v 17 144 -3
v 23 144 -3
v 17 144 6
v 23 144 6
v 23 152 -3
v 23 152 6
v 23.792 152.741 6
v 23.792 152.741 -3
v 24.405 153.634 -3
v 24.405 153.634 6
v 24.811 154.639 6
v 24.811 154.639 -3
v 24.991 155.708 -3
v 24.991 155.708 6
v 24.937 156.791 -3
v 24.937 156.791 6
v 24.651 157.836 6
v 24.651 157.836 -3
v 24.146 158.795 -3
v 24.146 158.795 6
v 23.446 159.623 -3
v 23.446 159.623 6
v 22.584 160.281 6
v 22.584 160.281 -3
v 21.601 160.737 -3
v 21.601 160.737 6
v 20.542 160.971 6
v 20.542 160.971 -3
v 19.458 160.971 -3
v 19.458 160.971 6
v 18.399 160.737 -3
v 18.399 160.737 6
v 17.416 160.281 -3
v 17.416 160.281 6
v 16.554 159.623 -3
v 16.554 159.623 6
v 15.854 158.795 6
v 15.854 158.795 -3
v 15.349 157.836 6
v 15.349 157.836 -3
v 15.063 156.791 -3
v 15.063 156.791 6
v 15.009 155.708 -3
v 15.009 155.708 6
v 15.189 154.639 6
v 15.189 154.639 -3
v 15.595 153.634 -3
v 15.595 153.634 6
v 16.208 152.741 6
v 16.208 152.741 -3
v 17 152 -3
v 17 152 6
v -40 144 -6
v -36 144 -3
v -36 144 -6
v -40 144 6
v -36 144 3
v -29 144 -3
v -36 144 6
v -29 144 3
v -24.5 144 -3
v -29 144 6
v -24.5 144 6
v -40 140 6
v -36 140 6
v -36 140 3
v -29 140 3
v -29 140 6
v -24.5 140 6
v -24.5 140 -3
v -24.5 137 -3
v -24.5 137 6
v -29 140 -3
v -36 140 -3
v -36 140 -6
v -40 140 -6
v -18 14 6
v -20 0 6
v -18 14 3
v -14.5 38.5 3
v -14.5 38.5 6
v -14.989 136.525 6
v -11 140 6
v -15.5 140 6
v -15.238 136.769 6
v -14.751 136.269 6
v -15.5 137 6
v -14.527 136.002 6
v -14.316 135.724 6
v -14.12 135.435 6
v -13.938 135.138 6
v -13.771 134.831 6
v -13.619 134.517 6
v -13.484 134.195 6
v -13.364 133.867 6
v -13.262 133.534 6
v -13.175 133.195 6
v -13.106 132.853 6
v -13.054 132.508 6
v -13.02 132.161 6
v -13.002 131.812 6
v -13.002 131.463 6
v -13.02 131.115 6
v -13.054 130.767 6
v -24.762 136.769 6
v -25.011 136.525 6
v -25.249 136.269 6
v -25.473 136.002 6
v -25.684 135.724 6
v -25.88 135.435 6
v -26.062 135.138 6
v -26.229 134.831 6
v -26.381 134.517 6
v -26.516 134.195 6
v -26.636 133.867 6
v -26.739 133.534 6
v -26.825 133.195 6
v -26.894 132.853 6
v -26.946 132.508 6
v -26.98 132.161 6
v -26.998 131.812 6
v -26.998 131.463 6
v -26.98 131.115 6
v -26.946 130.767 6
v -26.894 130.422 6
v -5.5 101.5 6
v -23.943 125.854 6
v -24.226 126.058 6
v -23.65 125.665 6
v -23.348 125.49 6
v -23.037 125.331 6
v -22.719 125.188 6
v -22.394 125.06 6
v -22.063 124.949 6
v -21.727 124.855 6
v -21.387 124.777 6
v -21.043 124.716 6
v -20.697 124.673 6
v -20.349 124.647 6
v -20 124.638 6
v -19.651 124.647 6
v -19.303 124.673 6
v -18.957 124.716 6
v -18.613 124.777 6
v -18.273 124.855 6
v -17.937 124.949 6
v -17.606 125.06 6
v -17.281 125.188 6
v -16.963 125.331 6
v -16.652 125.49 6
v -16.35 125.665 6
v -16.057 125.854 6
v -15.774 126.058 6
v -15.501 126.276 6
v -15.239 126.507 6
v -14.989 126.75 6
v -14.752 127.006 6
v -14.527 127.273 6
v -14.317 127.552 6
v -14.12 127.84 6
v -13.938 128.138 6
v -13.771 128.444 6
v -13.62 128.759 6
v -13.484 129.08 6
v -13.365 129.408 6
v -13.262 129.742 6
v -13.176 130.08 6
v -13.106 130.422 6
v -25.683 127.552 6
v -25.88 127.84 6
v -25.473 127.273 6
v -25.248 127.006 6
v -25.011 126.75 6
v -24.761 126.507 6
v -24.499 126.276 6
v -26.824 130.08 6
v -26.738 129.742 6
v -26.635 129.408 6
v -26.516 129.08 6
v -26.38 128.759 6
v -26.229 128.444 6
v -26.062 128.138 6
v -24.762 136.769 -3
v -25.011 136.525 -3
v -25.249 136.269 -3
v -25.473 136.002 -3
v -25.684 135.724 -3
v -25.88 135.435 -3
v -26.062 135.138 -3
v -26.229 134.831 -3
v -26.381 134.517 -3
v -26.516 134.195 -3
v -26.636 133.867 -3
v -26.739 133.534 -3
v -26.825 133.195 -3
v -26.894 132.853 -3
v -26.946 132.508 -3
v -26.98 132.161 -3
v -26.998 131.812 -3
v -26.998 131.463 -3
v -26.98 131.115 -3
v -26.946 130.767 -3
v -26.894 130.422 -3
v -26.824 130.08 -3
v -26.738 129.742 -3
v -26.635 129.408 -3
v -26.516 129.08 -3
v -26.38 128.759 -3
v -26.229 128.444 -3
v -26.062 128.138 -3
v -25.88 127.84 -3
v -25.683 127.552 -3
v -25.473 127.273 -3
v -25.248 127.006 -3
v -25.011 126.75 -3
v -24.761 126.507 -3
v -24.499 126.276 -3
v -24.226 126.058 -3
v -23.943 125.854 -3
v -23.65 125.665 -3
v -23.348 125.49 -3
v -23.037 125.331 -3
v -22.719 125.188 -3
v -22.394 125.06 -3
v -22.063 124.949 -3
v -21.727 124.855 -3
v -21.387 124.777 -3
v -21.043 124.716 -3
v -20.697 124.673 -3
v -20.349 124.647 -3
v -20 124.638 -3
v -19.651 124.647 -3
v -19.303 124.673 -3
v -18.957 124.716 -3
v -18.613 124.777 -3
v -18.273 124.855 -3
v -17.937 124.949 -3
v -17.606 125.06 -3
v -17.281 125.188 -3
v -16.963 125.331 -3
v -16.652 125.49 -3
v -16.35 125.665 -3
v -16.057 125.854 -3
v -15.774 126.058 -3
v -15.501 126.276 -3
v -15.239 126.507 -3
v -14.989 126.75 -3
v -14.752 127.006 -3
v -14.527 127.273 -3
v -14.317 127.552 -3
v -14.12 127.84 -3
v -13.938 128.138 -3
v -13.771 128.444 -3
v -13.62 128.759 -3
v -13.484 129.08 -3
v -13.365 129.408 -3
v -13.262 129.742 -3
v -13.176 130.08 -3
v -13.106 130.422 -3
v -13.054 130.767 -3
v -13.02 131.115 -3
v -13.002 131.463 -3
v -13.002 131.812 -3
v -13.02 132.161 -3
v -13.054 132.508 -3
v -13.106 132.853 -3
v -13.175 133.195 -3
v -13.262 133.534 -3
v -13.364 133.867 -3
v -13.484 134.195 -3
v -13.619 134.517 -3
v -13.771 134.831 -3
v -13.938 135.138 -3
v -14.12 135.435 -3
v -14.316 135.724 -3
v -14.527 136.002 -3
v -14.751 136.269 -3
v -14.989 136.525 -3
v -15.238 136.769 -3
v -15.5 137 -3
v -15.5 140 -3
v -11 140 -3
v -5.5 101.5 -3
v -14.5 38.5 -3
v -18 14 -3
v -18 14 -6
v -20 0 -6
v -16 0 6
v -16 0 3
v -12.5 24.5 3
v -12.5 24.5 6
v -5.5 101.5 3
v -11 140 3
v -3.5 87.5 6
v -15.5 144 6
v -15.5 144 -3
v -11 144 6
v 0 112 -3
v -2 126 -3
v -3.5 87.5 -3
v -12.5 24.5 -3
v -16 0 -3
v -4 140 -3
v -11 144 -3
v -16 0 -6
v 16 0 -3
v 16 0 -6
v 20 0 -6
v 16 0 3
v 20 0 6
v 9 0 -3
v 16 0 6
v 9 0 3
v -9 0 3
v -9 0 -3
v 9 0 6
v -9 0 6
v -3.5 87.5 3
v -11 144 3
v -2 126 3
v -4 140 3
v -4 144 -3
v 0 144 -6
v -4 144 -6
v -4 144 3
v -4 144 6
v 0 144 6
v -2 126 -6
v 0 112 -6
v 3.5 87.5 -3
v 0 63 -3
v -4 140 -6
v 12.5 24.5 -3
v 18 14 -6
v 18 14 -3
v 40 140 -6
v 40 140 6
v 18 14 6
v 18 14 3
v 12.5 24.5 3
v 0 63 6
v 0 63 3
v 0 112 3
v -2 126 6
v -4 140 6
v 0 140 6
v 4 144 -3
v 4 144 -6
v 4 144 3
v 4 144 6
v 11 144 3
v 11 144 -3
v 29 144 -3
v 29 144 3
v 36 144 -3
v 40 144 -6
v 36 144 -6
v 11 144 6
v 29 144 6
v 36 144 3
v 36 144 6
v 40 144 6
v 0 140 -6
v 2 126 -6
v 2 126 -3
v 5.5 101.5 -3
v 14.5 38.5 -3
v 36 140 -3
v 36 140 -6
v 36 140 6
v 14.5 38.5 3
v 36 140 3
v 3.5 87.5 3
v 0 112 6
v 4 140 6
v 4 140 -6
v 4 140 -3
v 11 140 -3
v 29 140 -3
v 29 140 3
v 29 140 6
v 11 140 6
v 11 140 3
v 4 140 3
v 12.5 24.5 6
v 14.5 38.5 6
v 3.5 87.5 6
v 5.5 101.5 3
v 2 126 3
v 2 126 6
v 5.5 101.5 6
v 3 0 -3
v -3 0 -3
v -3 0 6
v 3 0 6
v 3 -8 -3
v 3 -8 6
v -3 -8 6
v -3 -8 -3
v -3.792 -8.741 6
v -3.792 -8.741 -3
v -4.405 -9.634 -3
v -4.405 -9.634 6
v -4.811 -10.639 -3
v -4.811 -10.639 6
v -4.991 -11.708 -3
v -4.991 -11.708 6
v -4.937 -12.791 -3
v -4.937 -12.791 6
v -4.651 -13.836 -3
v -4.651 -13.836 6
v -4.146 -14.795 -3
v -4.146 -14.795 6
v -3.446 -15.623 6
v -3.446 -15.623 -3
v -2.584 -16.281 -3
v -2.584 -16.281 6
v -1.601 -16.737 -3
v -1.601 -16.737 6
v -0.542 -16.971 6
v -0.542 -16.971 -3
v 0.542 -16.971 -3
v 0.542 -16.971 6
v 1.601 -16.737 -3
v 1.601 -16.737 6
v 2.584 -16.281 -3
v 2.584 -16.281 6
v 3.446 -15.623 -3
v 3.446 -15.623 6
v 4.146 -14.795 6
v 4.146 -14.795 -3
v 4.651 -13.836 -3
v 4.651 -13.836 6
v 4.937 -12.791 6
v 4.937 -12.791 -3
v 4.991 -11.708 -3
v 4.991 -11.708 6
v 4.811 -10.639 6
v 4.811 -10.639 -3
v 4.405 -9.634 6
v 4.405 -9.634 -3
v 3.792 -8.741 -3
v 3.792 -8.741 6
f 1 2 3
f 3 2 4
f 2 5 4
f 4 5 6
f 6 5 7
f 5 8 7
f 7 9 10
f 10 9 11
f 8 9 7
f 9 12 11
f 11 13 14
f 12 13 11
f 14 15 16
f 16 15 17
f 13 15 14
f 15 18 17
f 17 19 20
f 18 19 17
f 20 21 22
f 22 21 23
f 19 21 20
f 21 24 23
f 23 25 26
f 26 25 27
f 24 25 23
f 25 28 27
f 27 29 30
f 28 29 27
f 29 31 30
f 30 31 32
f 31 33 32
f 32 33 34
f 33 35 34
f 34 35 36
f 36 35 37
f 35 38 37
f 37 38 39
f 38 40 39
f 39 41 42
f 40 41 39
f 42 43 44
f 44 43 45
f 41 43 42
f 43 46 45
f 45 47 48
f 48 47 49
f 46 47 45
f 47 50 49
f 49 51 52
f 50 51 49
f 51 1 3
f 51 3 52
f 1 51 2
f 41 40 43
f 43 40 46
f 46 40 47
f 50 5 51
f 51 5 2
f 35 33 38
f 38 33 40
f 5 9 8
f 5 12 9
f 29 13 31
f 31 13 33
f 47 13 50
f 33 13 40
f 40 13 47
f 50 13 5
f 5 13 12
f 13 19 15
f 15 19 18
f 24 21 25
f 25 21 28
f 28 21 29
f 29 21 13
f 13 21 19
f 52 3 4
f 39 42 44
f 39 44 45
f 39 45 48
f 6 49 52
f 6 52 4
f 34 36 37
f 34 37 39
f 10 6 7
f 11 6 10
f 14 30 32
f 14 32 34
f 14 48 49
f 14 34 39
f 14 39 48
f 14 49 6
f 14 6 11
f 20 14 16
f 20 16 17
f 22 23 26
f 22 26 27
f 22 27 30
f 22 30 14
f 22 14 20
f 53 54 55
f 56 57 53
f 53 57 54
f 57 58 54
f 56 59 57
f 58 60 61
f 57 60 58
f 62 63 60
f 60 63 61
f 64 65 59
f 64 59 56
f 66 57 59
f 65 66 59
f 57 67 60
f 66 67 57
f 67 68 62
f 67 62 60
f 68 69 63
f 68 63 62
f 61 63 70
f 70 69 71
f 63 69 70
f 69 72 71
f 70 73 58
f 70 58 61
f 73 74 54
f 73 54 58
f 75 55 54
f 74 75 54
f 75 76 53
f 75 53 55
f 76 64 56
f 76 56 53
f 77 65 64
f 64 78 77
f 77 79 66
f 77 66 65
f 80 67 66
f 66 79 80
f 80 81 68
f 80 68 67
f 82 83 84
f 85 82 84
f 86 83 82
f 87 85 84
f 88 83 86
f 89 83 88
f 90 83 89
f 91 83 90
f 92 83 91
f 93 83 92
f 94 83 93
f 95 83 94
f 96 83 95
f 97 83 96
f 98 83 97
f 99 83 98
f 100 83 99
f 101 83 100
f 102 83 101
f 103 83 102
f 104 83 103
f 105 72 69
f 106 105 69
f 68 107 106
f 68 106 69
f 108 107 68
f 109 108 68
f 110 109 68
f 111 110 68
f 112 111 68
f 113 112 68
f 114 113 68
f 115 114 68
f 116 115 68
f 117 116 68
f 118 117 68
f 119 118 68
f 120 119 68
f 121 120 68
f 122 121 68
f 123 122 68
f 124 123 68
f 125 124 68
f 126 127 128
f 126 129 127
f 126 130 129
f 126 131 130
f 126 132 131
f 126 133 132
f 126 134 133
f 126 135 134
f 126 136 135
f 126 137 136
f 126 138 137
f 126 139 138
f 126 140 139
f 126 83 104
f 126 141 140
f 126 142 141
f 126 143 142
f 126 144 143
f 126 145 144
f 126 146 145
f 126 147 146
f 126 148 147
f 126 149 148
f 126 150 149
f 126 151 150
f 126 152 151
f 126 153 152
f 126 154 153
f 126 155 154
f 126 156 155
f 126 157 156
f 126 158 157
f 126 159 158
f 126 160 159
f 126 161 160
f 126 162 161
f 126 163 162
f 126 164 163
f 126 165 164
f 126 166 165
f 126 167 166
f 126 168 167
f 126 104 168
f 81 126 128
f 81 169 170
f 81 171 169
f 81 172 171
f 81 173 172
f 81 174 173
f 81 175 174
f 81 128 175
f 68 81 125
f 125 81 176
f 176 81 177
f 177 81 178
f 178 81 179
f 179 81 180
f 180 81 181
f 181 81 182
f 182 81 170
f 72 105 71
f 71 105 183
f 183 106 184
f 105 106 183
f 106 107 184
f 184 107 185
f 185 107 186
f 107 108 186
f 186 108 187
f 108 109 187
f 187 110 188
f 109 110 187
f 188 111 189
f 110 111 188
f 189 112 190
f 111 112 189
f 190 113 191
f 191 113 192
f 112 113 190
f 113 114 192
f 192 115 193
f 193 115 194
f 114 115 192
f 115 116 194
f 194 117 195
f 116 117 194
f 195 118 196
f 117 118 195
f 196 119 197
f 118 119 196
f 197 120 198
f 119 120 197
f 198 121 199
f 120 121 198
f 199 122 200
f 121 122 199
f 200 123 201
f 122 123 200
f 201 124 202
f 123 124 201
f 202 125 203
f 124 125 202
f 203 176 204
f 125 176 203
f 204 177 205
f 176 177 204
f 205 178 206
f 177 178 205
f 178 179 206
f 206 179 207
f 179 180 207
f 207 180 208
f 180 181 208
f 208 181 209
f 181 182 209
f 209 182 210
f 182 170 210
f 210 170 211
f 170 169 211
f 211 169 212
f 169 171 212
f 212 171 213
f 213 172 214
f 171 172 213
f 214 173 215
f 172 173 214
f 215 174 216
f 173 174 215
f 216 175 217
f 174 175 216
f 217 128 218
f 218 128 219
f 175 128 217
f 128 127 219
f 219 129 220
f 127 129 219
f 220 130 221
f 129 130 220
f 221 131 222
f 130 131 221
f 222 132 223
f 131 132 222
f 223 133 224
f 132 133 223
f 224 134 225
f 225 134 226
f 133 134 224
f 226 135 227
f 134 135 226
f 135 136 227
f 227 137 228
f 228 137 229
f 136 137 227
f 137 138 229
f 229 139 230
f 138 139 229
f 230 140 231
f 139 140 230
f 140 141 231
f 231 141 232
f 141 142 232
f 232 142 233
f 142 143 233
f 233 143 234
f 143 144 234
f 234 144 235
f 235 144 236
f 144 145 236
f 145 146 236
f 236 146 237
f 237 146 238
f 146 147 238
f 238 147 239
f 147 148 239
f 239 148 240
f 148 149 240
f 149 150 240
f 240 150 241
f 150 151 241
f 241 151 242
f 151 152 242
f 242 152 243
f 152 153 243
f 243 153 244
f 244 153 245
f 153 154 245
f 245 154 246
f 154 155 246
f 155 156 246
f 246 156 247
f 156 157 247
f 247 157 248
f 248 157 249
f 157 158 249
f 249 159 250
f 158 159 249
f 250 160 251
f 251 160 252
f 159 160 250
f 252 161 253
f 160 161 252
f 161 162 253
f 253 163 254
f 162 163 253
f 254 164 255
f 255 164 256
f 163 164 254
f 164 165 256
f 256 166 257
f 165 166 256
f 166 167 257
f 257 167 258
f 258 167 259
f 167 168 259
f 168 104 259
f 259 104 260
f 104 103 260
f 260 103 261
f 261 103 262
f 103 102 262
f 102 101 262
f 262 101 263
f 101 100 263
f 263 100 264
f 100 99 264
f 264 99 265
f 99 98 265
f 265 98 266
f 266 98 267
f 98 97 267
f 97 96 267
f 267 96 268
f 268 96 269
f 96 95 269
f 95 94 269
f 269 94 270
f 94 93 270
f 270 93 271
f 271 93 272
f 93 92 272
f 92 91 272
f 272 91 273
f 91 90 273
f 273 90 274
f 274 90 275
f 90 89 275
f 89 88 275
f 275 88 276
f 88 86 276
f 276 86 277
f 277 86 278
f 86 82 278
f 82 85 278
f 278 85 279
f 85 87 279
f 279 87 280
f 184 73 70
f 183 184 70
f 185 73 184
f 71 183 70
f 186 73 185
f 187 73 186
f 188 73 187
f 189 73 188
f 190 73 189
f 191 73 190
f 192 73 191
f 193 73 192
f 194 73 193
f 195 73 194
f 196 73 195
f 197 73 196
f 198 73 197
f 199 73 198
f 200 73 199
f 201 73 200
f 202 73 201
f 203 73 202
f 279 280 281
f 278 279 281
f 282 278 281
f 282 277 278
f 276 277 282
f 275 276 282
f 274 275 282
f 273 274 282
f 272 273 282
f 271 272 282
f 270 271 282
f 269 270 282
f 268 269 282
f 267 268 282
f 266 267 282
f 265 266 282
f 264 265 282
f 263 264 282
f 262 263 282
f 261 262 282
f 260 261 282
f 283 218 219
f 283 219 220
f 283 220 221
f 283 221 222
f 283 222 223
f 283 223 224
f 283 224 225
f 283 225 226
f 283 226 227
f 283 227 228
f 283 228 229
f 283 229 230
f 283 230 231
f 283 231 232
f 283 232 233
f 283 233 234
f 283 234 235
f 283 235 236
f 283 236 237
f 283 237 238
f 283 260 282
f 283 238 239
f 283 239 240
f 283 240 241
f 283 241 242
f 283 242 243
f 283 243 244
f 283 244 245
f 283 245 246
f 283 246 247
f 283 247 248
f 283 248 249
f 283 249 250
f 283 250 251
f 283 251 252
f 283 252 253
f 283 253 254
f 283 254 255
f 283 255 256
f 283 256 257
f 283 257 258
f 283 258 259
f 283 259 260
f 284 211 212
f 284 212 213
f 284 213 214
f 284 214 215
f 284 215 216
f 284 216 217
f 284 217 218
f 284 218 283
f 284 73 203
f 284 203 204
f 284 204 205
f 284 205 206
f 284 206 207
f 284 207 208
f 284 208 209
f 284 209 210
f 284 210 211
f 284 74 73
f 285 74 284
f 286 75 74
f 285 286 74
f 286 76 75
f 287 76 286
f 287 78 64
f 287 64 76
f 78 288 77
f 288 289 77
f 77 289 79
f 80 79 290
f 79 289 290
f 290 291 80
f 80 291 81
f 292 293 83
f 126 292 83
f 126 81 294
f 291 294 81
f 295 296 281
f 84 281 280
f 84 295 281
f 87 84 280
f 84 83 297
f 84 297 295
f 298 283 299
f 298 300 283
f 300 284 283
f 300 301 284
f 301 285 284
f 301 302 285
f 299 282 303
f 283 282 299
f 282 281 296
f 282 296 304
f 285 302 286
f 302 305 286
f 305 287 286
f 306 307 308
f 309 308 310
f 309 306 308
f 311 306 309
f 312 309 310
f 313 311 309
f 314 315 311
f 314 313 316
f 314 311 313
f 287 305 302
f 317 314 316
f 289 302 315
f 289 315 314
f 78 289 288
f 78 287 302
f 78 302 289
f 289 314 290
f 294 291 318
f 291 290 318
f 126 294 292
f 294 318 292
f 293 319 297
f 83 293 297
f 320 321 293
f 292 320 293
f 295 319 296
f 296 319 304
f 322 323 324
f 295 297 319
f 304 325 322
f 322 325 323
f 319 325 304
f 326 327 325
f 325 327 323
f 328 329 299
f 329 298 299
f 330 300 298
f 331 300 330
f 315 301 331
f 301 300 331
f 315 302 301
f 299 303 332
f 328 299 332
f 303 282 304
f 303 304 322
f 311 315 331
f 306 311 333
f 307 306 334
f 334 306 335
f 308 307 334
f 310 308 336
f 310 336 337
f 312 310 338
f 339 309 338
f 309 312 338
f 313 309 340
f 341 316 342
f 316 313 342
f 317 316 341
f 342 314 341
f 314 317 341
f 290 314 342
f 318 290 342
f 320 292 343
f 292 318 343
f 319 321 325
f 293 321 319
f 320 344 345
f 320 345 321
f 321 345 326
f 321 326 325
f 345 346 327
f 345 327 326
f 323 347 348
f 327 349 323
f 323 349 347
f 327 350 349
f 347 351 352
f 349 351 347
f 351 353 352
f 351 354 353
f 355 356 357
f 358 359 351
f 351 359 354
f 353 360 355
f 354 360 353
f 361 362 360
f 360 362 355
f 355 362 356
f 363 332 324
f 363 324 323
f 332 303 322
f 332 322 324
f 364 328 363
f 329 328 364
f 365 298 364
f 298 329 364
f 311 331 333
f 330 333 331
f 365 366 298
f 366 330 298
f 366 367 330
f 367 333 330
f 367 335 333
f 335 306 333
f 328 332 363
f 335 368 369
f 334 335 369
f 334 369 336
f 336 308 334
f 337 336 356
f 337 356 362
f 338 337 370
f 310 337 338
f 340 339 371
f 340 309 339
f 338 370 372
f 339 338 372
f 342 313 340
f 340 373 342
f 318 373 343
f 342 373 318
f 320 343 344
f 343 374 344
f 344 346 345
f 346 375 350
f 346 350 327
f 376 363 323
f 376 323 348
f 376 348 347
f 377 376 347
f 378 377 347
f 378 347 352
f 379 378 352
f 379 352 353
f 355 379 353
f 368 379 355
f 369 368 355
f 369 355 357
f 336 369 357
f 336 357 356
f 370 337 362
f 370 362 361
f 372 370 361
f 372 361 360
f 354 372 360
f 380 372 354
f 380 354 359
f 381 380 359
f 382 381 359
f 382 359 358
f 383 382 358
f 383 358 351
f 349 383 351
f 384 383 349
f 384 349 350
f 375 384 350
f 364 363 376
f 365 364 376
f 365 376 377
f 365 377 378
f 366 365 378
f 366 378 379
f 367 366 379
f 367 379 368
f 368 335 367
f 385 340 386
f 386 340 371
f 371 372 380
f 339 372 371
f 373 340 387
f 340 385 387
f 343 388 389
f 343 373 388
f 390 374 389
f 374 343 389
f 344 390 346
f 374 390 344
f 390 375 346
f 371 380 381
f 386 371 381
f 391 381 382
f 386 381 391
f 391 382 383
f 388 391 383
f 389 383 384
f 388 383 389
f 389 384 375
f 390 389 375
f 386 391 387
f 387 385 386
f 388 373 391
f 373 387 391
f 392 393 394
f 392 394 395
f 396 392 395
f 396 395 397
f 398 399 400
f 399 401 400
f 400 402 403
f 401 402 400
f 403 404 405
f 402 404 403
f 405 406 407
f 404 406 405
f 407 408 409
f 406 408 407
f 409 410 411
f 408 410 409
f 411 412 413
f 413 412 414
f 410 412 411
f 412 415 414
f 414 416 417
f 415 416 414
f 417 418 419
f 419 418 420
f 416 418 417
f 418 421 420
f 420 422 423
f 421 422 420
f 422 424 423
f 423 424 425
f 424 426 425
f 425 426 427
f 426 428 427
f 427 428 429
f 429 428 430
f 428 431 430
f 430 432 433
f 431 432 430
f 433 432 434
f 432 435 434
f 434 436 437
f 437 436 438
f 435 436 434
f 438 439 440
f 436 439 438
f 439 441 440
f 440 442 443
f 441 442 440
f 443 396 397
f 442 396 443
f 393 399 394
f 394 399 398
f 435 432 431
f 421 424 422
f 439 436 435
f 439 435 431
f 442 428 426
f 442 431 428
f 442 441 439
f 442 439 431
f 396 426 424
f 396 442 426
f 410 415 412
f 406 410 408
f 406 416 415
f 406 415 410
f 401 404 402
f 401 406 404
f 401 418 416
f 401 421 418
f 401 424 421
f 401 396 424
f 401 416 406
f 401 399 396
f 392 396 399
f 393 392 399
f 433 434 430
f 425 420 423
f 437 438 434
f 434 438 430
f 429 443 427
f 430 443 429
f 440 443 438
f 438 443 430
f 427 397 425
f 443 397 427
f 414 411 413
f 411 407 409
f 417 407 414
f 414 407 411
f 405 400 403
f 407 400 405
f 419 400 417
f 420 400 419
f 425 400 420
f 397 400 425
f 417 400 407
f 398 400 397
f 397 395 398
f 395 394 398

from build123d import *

# Parameters (mm, degrees)
SKETCH004_W       = 32
SKETCH004_H       = 3
SKETCH005_W       = 7
SKETCH005_H       = 3
SKETCH006_W       = 7
SKETCH006_H       = 3
POCKET_DEPTH      = 6.001
POCKET_DEPTH_BACK = -6.001
PAD_DEPTH         = 6
PAD_DEPTH_BACK    = 3
PAD002_DEPTH      = 6
PAD002_DEPTH_BACK = 3


with BuildPart() as body:
    # AdditivePipe: sweep along a path in Sketch
    with BuildLine(Plane.XY) as additivepipe_path:
        Line((-20, 144), (-20, 140))
        Line((-20, 140), (0, 0))
    # Sketch002 → AdditivePipe (sweep)
    with BuildSketch(Plane.XZ):
        Polygon((-20, 6), (-20, -6), (-16, -6), (-16, -3), (-9, -3), (9, -3), (16, -3), (16, -6), (20, -6), (20, 6), (16, 6), (16, 3), (9, 3), (9, 6), (-9, 6), (-9, 3), (-16, 3), (-16, 6), align=None)
    sweep(path=additivepipe_path.line)

    # AdditivePipe001: sweep along a path in Sketch001
    with BuildLine(Plane.XY) as additivepipe001_path:
        Line((20, 144), (20, 140))
        Line((20, 140), (0, 0))
    # Sketch002 → AdditivePipe001 (sweep)
    with BuildSketch(Plane.XZ):
        Polygon((-20, 6), (-20, -6), (-16, -6), (-16, -3), (-9, -3), (9, -3), (16, -3), (16, -6), (20, -6), (20, 6), (16, 6), (16, 3), (9, 3), (9, 6), (-9, 6), (-9, 3), (-16, 3), (-16, 6), align=None)
    sweep(path=additivepipe001_path.line)

    # SubtractivePipe: sweep along a path in Sketch
    with BuildLine(Plane.XY) as subtractivepipe_path:
        Line((-20, 144), (-20, 140))
        Line((-20, 140), (0, 0))
    # Sketch004 → SubtractivePipe (sweep, cut)
    with BuildSketch(Plane.XZ):
        with Locations((0, -4.5)):
            Rectangle(SKETCH004_W, SKETCH004_H)
    sweep(path=subtractivepipe_path.line, mode=Mode.SUBTRACT)

    # SubtractivePipe001: sweep along a path in Sketch001
    with BuildLine(Plane.XY) as subtractivepipe001_path:
        Line((20, 144), (20, 140))
        Line((20, 140), (0, 0))
    # Sketch004 → SubtractivePipe001 (sweep, cut)
    with BuildSketch(Plane.XZ):
        with Locations((0, -4.5)):
            Rectangle(SKETCH004_W, SKETCH004_H)
    sweep(path=subtractivepipe001_path.line, mode=Mode.SUBTRACT)

    # SubtractivePipe002: sweep along a path in Sketch
    with BuildLine(Plane.XY) as subtractivepipe002_path:
        Line((-20, 144), (-20, 140))
        Line((-20, 140), (0, 0))
    # Sketch005 → SubtractivePipe002 (sweep, cut)
    with BuildSketch(Plane.XZ):
        with Locations((-12.5, 4.5)):
            Rectangle(SKETCH005_W, SKETCH005_H)
    sweep(path=subtractivepipe002_path.line, mode=Mode.SUBTRACT)

    # SubtractivePipe003: sweep along a path in Sketch001
    with BuildLine(Plane.XY) as subtractivepipe003_path:
        Line((20, 144), (20, 140))
        Line((20, 140), (0, 0))
    # Sketch005 → SubtractivePipe003 (sweep, cut)
    with BuildSketch(Plane.XZ):
        with Locations((-12.5, 4.5)):
            Rectangle(SKETCH005_W, SKETCH005_H)
    sweep(path=subtractivepipe003_path.line, mode=Mode.SUBTRACT)

    # SubtractivePipe004: sweep along a path in Sketch
    with BuildLine(Plane.XY) as subtractivepipe004_path:
        Line((-20, 144), (-20, 140))
        Line((-20, 140), (0, 0))
    # Sketch006 → SubtractivePipe004 (sweep, cut)
    with BuildSketch(Plane.XZ):
        with Locations((12.5, 4.5)):
            Rectangle(SKETCH006_W, SKETCH006_H)
    sweep(path=subtractivepipe004_path.line, mode=Mode.SUBTRACT)

    # SubtractivePipe005: sweep along a path in Sketch001
    with BuildLine(Plane.XY) as subtractivepipe005_path:
        Line((20, 144), (20, 140))
        Line((20, 140), (0, 0))
    # Sketch006 → SubtractivePipe005 (sweep, cut)
    with BuildSketch(Plane.XZ):
        with Locations((12.5, 4.5)):
            Rectangle(SKETCH006_W, SKETCH006_H)
    sweep(path=subtractivepipe005_path.line, mode=Mode.SUBTRACT)

    # Sketch007 → Pocket (cut, two sides)
    with BuildSketch(Plane.XY) as pocket_sk:
        with BuildLine():
            Line((-24.5, 144), (-15.5, 144))
            Line((-15.5, 144), (-15.5, 137))
            ThreePointArc((-24.5, 137), (-20, 124.638097), (-15.5, 137))
            Line((-24.5, 144), (-24.5, 137))
        make_face()
    extrude(amount=-POCKET_DEPTH, mode=Mode.SUBTRACT)
    extrude(pocket_sk.sketch, amount=-POCKET_DEPTH_BACK, mode=Mode.SUBTRACT)


with BuildPart() as body001:
    # Sketch009 → Pad (new body, two sides)
    with BuildSketch(Plane.XY) as pad_sk:
        with BuildLine():
            Line((-3, 0), (3, 0))
            Line((3, 0), (3, -8))
            ThreePointArc((-3, -8), (0, -17), (3, -8))
            Line((-3, 0), (-3, -8))
        make_face()
    extrude(amount=PAD_DEPTH)
    extrude(pad_sk.sketch, amount=-PAD_DEPTH_BACK)


with BuildPart() as male3:
    # Sketch011 → Pad002 (new body, two sides)
    with BuildSketch(Plane.XY) as pad002_sk:
        with BuildLine():
            Line((17, 144), (23, 144))
            Line((23, 144), (23, 152))
            ThreePointArc((23, 152), (20, 161), (17, 152))
            Line((17, 144), (17, 152))
        make_face()
    extrude(amount=PAD002_DEPTH)
    extrude(pad002_sk.sketch, amount=-PAD002_DEPTH_BACK)


solid = Compound([body.part, body001.part, male3.part])
